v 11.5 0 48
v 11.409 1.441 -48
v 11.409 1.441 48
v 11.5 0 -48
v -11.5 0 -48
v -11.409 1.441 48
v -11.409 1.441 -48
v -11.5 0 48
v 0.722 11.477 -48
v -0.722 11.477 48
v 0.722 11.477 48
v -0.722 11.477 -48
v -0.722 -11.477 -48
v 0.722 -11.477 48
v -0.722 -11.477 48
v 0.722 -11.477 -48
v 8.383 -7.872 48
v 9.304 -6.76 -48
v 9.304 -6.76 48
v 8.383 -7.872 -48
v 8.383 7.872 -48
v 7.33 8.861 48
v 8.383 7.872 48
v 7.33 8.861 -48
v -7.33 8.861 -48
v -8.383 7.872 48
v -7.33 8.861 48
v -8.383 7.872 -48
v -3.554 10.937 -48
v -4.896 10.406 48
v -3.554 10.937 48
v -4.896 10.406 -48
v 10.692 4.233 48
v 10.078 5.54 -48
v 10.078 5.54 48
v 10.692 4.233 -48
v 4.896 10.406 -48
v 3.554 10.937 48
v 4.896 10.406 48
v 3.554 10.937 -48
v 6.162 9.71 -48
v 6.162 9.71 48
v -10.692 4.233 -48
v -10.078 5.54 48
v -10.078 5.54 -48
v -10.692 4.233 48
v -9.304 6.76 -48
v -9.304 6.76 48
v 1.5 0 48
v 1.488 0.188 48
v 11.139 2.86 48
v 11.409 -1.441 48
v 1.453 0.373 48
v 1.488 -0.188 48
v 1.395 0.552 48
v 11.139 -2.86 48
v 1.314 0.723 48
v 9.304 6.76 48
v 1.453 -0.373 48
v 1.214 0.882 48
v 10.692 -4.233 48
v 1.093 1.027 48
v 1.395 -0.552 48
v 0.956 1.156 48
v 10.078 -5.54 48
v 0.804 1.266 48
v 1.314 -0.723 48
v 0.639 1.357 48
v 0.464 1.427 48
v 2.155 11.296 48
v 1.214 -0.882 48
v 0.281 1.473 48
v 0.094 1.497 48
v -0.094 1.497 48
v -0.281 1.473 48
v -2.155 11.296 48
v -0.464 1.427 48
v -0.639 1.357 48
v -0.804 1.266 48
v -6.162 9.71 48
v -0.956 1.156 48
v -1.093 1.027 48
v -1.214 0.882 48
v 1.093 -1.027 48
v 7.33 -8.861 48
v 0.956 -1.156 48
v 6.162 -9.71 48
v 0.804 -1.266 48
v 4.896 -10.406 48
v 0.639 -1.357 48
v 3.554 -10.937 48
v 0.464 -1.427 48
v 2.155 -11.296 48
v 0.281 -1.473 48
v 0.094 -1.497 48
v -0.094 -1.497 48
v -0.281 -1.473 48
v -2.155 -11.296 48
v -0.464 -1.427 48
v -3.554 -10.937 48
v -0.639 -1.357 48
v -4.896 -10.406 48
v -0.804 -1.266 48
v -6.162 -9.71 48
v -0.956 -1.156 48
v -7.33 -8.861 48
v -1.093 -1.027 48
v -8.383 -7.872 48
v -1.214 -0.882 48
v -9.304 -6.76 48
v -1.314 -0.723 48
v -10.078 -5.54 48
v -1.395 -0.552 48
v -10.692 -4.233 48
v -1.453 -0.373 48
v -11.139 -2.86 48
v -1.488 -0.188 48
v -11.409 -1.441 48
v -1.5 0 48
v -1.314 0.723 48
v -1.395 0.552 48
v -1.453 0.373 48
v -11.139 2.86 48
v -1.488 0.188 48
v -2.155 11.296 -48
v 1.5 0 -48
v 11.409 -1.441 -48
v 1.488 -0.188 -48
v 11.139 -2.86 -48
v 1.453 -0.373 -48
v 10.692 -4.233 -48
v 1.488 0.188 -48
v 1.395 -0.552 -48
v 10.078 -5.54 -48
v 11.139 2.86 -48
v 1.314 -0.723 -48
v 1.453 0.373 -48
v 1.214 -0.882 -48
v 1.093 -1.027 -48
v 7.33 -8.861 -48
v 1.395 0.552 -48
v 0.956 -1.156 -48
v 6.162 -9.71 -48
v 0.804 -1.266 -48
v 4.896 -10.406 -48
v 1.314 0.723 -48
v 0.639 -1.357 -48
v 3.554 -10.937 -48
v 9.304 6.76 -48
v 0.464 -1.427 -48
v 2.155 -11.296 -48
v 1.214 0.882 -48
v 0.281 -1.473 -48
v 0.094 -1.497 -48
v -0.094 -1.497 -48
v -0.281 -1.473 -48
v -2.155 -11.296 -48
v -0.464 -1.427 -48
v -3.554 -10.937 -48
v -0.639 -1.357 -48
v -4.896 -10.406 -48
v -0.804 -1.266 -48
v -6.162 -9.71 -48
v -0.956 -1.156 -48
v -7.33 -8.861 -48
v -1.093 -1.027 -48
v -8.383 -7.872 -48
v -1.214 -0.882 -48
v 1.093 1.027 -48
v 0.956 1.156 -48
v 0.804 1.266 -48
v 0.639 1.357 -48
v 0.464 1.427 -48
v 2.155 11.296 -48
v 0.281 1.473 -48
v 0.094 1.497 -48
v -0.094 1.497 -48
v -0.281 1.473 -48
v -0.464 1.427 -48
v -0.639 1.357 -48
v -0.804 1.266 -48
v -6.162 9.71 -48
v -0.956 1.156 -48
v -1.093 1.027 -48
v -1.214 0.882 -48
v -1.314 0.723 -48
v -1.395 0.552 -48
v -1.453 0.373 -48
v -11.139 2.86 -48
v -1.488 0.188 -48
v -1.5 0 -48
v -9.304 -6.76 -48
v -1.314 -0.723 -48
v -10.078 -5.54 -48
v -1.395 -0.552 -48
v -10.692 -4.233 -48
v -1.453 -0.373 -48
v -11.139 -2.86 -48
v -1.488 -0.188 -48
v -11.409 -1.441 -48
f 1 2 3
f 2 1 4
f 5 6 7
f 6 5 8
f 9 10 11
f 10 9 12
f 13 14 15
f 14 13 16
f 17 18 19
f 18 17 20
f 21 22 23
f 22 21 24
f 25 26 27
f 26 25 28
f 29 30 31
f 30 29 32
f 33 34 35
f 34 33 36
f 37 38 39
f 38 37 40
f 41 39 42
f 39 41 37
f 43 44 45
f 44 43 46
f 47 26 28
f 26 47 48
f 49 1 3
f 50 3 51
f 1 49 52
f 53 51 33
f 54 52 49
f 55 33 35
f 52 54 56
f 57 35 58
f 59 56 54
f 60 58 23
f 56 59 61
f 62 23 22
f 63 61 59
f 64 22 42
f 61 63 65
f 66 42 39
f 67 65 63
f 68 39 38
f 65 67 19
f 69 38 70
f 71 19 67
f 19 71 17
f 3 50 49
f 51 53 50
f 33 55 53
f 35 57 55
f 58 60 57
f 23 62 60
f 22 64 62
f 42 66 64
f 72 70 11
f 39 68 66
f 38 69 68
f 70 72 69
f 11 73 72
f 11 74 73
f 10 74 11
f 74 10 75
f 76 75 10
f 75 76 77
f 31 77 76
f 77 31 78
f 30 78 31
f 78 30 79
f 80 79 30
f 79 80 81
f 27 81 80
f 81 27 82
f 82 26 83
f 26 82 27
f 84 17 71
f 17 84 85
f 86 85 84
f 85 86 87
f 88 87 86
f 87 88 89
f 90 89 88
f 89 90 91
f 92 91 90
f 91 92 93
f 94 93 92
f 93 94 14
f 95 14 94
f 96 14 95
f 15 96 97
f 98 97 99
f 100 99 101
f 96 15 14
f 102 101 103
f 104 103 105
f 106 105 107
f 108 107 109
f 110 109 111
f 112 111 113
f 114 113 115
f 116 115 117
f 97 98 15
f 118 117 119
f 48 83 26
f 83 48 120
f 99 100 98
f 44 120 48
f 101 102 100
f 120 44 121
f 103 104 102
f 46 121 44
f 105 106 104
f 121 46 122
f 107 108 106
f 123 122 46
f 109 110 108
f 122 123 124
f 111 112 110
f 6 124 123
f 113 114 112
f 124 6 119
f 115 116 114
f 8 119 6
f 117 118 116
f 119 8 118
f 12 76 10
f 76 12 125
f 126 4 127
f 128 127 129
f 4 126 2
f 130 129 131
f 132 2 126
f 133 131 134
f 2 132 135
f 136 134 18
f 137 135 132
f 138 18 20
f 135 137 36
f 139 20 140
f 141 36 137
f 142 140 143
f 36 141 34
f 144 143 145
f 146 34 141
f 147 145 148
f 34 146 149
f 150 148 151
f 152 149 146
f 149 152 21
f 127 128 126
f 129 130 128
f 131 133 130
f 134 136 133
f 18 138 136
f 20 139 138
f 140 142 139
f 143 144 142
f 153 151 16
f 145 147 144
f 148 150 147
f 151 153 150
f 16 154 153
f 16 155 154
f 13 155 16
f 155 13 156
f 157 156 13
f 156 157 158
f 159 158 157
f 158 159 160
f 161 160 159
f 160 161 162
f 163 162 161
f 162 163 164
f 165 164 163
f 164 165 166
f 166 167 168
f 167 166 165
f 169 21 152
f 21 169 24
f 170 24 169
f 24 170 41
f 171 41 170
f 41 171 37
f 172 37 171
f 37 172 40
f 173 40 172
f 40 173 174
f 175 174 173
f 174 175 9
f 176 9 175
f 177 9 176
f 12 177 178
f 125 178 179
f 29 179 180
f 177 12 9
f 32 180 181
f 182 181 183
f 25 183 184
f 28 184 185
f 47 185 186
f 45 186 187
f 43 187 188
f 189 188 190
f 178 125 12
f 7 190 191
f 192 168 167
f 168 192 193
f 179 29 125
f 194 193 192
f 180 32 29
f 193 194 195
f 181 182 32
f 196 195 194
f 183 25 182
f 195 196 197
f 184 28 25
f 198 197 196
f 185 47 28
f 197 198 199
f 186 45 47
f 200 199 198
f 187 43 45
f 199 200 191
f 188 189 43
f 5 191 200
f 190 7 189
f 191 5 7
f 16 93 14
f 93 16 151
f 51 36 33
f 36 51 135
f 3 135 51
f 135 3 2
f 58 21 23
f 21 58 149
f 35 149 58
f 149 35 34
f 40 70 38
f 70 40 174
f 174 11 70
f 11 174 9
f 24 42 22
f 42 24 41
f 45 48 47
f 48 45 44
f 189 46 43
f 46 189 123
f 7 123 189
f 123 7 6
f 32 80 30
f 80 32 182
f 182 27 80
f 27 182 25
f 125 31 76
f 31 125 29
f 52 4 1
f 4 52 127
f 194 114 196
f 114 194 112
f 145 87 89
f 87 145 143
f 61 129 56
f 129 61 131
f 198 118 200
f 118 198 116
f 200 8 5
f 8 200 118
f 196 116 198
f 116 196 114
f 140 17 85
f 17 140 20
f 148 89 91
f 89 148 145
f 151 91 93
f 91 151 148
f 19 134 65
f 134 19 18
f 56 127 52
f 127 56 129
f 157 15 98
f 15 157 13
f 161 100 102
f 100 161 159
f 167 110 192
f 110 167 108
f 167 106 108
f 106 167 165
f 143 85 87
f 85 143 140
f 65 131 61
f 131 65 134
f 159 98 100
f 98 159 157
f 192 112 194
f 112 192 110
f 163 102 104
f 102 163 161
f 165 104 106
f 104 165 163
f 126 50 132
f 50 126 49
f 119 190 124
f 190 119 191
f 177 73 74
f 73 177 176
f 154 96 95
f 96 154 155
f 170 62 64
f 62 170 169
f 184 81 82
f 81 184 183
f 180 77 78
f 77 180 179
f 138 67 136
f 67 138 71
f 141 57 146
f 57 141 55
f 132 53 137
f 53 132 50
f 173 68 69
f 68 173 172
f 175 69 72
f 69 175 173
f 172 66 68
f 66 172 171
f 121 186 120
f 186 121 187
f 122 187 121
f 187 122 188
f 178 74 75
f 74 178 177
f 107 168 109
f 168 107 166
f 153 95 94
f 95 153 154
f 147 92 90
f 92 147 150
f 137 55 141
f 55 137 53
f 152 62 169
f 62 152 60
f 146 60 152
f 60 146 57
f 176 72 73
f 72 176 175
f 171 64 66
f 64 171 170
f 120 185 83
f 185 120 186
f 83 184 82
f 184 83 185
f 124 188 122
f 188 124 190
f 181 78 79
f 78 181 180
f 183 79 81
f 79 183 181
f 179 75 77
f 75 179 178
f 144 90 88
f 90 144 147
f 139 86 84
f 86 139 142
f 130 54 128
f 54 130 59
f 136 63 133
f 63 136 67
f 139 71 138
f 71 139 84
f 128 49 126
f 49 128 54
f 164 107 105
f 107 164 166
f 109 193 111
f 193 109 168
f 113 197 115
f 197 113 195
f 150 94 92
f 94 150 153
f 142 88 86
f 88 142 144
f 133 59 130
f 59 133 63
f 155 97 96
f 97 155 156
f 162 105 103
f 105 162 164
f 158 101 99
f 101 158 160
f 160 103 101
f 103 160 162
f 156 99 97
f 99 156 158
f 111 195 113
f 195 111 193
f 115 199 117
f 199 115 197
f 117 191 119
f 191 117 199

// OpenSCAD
$fn = 50;


difference() {
	union() {
		translate(v = [0, 0, -48.0000000000]) {
			cylinder(h = 96, r = 11.5000000000);
		}
	}
	union() {
		translate(v = [0, 0, -100.0000000000]) {
			cylinder(h = 200, r = 1.5000000000);
		}
	}
}
